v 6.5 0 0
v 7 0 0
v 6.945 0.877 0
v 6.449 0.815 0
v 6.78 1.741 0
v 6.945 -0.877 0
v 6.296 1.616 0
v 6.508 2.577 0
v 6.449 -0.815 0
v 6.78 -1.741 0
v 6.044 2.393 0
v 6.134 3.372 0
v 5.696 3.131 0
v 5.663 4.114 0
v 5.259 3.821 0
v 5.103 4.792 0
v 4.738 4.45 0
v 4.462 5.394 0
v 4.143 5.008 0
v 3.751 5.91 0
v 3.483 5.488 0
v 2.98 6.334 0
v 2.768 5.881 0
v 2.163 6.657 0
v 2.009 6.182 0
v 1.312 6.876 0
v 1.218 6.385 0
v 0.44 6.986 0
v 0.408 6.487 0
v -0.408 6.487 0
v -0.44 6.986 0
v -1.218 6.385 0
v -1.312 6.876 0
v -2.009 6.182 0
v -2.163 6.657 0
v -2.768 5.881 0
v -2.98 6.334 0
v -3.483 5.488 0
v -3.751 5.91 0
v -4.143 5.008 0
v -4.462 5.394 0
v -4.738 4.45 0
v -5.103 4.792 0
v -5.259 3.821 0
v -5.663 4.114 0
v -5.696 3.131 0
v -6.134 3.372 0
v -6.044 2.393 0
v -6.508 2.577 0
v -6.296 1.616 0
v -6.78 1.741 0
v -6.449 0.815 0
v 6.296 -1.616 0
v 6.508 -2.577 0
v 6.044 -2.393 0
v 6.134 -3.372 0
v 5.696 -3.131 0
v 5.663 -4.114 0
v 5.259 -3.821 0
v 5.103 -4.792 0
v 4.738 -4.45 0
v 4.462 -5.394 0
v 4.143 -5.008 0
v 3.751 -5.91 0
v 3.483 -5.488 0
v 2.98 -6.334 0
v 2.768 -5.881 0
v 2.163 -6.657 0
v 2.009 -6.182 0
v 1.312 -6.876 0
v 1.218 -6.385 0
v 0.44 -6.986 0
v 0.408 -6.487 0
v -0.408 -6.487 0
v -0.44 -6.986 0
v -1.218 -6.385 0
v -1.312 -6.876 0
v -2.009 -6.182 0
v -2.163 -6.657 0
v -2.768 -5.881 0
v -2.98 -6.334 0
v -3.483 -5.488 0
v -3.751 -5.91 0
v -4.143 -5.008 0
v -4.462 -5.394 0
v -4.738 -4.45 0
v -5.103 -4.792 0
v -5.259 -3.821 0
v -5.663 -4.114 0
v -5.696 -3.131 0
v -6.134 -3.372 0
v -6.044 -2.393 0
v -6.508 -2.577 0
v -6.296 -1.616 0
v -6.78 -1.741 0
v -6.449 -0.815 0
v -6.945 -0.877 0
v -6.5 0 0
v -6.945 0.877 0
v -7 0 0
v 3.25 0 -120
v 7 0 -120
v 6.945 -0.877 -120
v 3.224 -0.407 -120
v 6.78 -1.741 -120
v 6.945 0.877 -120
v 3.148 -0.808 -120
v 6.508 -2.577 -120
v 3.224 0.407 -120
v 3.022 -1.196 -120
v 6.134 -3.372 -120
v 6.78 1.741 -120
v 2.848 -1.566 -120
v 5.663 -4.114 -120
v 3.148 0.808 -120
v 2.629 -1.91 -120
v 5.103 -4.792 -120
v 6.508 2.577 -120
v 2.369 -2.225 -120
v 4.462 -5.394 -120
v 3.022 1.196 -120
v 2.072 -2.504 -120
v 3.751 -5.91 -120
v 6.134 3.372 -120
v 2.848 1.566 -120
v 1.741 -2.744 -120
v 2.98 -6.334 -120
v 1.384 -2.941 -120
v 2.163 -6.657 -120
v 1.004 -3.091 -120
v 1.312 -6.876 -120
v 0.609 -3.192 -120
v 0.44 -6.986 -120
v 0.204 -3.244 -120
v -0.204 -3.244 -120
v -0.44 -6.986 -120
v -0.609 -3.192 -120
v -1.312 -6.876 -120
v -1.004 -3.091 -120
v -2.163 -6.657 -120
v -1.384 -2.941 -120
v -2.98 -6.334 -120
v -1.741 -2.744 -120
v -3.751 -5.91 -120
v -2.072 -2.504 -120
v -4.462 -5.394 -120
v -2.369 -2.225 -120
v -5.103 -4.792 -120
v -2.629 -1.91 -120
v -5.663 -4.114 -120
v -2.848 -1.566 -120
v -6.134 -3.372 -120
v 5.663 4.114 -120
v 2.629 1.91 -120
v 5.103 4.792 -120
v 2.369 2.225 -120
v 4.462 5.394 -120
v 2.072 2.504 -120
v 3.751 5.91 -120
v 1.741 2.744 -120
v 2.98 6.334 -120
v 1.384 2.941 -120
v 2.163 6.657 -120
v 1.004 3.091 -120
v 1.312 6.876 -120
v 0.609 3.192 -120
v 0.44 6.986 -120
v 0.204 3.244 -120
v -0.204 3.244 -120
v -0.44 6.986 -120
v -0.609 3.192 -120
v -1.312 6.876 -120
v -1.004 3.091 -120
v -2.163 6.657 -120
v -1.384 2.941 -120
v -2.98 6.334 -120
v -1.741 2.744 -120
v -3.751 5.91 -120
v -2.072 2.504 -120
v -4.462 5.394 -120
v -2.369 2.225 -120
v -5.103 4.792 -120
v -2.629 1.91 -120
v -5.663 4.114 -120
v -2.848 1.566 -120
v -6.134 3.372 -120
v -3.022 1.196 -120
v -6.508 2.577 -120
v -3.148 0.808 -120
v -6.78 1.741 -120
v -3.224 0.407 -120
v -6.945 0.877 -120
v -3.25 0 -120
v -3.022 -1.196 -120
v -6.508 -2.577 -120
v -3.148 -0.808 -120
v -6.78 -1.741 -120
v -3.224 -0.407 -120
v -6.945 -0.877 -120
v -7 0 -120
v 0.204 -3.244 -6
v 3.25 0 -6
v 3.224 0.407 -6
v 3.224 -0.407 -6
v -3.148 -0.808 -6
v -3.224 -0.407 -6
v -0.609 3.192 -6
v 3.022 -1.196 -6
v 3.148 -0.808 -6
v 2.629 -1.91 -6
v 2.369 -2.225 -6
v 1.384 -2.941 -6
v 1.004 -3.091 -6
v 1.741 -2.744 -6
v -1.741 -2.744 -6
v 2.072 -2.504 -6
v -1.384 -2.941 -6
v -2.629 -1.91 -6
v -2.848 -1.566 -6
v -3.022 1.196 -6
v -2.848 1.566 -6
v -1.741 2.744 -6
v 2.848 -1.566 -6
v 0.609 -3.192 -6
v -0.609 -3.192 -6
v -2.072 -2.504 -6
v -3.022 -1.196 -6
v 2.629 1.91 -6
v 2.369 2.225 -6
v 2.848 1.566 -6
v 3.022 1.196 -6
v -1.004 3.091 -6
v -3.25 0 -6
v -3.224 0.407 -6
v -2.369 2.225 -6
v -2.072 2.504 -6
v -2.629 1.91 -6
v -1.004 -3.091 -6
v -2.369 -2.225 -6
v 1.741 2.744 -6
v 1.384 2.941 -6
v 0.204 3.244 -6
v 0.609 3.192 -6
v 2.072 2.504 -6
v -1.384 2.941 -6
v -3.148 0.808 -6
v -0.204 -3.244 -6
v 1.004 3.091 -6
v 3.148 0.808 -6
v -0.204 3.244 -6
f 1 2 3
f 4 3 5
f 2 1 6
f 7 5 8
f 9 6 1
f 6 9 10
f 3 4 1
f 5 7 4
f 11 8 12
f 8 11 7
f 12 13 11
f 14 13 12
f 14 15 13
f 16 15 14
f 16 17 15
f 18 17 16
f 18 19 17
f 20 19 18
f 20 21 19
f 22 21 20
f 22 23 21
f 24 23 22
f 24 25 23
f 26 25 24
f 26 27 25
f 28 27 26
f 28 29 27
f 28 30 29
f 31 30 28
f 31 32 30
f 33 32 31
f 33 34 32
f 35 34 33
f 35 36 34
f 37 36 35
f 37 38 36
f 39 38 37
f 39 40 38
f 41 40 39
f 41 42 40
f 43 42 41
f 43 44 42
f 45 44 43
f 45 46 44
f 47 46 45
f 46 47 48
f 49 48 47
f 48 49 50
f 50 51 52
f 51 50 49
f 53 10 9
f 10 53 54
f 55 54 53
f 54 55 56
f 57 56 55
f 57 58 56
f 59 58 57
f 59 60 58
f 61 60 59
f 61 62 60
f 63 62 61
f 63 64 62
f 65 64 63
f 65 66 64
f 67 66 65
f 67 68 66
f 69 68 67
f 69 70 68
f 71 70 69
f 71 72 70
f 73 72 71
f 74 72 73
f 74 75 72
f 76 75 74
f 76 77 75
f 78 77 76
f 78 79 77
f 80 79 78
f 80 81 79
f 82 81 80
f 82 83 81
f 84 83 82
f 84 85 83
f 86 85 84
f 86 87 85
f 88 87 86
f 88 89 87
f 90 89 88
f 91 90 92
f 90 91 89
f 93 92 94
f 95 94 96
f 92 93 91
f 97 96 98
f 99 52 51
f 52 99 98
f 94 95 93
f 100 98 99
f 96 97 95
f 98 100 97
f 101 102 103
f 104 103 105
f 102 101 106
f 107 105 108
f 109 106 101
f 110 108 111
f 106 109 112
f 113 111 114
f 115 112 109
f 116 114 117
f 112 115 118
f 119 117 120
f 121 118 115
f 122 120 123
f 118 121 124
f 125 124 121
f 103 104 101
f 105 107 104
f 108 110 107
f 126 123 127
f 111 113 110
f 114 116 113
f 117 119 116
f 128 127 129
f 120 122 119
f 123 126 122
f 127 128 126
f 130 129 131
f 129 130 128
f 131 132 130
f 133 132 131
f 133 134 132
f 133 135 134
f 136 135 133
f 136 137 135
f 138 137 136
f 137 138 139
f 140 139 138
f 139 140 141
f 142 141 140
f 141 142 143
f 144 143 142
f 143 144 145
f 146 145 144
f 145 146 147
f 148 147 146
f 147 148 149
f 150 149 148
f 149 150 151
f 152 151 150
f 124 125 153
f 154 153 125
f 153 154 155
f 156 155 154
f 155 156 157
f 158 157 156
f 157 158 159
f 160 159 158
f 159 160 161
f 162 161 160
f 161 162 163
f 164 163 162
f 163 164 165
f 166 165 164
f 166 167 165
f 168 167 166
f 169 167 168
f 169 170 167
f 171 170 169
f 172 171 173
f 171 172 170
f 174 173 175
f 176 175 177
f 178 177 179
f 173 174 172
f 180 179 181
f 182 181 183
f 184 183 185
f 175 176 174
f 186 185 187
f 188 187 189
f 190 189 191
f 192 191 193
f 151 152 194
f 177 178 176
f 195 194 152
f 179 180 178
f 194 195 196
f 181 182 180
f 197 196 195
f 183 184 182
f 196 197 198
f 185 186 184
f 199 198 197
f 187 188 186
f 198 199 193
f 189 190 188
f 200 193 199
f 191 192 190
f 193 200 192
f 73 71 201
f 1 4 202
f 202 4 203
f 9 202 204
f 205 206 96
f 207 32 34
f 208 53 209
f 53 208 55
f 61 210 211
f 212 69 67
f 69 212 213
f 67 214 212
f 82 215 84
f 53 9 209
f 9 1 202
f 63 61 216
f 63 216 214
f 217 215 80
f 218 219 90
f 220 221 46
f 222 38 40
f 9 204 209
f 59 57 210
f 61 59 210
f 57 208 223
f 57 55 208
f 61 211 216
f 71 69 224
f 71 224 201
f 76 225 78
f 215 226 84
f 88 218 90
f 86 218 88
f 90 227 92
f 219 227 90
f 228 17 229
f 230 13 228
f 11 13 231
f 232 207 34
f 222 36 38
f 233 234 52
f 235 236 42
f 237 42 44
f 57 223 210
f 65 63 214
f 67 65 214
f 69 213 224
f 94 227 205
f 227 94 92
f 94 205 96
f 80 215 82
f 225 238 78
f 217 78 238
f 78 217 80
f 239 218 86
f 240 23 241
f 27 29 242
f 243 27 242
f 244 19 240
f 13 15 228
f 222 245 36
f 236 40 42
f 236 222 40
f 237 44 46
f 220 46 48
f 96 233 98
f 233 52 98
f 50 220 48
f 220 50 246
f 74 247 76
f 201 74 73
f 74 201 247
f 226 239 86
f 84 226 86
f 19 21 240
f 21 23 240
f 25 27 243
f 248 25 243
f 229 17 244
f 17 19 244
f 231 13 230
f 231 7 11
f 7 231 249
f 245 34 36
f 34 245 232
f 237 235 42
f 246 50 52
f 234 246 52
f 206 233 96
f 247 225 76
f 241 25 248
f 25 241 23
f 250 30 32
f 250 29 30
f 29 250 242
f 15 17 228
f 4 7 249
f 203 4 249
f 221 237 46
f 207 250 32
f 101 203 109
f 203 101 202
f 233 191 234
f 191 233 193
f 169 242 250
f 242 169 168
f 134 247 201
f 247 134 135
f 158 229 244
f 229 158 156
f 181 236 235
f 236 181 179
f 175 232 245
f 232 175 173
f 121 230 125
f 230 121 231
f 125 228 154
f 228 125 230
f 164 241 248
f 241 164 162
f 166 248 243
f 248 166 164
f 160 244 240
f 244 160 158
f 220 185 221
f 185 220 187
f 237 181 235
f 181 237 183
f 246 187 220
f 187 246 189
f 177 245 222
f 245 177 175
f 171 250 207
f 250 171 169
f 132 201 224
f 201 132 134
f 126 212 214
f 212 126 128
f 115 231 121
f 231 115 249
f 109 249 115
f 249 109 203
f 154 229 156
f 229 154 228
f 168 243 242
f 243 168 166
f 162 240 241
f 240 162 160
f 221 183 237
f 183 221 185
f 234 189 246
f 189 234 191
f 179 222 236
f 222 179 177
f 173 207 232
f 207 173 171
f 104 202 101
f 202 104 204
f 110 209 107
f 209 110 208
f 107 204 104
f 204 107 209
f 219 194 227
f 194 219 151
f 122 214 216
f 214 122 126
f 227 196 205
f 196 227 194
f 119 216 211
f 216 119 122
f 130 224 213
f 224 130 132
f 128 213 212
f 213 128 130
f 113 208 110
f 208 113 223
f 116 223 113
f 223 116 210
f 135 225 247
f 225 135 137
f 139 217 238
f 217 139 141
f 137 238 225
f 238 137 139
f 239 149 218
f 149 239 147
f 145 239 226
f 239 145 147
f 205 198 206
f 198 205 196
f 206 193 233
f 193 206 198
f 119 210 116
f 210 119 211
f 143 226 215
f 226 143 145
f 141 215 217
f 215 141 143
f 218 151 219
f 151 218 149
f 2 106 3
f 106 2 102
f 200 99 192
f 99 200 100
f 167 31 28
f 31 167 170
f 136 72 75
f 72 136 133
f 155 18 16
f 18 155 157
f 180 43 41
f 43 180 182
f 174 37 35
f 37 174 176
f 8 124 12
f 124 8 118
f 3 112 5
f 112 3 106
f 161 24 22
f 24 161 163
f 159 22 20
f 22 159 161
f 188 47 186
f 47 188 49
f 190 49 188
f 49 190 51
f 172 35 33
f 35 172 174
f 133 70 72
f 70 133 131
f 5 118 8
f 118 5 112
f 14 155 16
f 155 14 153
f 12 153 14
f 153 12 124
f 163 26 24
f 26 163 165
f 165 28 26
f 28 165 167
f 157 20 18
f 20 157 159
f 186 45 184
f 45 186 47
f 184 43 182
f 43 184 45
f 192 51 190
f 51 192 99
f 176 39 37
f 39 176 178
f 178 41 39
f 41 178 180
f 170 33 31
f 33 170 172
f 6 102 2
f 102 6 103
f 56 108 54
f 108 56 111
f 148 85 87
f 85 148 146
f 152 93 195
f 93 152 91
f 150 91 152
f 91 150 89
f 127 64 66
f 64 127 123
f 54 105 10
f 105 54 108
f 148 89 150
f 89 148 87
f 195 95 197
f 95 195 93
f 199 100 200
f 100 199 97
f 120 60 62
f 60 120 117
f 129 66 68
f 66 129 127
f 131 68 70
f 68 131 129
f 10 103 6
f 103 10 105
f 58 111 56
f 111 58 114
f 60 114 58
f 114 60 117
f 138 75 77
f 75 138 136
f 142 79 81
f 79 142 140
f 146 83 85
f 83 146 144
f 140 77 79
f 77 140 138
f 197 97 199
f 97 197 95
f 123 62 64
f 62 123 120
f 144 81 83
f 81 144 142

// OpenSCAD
$fn = 50;


difference() {
	union() {
		translate(v = [0, 0, -120.0000000000]) {
			cylinder(h = 120, r = 7.0000000000);
		}
	}
	union() {
		translate(v = [0, 0, 0]) {
			rotate(a = [0, 0, 0]) {
				difference() {
					union() {
						#translate(v = [0, 0, -120.0000000000]) {
							cylinder(h = 120, r = 2.2500000000);
						}
						#translate(v = [0, 0, -6]) {
							cylinder(h = 6, r = 7.0000000000, r1 = 3.2500000000, r2 = 6.5000000000);
						}
						#translate(v = [0, 0, -120.0000000000]) {
							cylinder(h = 120, r = 3.2500000000);
						}
						#translate(v = [0, 0, -120.0000000000]) {
							cylinder(h = 120, r = 2.2500000000);
						}
					}
					union();
				}
			}
		}
	}
}
